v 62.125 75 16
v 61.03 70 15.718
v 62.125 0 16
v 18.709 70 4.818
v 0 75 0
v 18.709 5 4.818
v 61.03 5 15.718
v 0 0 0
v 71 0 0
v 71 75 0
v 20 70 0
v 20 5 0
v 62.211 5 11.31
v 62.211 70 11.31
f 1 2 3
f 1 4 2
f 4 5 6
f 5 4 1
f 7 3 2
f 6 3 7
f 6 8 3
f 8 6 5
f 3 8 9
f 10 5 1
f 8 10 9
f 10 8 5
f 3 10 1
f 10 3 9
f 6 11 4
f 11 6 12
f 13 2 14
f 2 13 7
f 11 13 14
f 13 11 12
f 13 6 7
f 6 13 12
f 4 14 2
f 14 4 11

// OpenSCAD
//lcd 2.8 box top
$fn = $preview ? 12 : 72;
w=75; //58+10
l=71; // 74+9.7 / 3/4
h=11+5;  //11

difference() {
polyhedron( points = [ [0,0,0], [l,0,0], [l,w,0], [0,w,0], [l*7/8,0,h], [l*7/8,w,h]], faces =[[0,1,2,3], [0,4,1], [0,3,5,4], [4,5,2,1], [3,2,5] ], convexity = 2);

#translate([20, 5, 0]) rotate(a=[0,-15,0]) cube([43.7,65,10],false);
}
